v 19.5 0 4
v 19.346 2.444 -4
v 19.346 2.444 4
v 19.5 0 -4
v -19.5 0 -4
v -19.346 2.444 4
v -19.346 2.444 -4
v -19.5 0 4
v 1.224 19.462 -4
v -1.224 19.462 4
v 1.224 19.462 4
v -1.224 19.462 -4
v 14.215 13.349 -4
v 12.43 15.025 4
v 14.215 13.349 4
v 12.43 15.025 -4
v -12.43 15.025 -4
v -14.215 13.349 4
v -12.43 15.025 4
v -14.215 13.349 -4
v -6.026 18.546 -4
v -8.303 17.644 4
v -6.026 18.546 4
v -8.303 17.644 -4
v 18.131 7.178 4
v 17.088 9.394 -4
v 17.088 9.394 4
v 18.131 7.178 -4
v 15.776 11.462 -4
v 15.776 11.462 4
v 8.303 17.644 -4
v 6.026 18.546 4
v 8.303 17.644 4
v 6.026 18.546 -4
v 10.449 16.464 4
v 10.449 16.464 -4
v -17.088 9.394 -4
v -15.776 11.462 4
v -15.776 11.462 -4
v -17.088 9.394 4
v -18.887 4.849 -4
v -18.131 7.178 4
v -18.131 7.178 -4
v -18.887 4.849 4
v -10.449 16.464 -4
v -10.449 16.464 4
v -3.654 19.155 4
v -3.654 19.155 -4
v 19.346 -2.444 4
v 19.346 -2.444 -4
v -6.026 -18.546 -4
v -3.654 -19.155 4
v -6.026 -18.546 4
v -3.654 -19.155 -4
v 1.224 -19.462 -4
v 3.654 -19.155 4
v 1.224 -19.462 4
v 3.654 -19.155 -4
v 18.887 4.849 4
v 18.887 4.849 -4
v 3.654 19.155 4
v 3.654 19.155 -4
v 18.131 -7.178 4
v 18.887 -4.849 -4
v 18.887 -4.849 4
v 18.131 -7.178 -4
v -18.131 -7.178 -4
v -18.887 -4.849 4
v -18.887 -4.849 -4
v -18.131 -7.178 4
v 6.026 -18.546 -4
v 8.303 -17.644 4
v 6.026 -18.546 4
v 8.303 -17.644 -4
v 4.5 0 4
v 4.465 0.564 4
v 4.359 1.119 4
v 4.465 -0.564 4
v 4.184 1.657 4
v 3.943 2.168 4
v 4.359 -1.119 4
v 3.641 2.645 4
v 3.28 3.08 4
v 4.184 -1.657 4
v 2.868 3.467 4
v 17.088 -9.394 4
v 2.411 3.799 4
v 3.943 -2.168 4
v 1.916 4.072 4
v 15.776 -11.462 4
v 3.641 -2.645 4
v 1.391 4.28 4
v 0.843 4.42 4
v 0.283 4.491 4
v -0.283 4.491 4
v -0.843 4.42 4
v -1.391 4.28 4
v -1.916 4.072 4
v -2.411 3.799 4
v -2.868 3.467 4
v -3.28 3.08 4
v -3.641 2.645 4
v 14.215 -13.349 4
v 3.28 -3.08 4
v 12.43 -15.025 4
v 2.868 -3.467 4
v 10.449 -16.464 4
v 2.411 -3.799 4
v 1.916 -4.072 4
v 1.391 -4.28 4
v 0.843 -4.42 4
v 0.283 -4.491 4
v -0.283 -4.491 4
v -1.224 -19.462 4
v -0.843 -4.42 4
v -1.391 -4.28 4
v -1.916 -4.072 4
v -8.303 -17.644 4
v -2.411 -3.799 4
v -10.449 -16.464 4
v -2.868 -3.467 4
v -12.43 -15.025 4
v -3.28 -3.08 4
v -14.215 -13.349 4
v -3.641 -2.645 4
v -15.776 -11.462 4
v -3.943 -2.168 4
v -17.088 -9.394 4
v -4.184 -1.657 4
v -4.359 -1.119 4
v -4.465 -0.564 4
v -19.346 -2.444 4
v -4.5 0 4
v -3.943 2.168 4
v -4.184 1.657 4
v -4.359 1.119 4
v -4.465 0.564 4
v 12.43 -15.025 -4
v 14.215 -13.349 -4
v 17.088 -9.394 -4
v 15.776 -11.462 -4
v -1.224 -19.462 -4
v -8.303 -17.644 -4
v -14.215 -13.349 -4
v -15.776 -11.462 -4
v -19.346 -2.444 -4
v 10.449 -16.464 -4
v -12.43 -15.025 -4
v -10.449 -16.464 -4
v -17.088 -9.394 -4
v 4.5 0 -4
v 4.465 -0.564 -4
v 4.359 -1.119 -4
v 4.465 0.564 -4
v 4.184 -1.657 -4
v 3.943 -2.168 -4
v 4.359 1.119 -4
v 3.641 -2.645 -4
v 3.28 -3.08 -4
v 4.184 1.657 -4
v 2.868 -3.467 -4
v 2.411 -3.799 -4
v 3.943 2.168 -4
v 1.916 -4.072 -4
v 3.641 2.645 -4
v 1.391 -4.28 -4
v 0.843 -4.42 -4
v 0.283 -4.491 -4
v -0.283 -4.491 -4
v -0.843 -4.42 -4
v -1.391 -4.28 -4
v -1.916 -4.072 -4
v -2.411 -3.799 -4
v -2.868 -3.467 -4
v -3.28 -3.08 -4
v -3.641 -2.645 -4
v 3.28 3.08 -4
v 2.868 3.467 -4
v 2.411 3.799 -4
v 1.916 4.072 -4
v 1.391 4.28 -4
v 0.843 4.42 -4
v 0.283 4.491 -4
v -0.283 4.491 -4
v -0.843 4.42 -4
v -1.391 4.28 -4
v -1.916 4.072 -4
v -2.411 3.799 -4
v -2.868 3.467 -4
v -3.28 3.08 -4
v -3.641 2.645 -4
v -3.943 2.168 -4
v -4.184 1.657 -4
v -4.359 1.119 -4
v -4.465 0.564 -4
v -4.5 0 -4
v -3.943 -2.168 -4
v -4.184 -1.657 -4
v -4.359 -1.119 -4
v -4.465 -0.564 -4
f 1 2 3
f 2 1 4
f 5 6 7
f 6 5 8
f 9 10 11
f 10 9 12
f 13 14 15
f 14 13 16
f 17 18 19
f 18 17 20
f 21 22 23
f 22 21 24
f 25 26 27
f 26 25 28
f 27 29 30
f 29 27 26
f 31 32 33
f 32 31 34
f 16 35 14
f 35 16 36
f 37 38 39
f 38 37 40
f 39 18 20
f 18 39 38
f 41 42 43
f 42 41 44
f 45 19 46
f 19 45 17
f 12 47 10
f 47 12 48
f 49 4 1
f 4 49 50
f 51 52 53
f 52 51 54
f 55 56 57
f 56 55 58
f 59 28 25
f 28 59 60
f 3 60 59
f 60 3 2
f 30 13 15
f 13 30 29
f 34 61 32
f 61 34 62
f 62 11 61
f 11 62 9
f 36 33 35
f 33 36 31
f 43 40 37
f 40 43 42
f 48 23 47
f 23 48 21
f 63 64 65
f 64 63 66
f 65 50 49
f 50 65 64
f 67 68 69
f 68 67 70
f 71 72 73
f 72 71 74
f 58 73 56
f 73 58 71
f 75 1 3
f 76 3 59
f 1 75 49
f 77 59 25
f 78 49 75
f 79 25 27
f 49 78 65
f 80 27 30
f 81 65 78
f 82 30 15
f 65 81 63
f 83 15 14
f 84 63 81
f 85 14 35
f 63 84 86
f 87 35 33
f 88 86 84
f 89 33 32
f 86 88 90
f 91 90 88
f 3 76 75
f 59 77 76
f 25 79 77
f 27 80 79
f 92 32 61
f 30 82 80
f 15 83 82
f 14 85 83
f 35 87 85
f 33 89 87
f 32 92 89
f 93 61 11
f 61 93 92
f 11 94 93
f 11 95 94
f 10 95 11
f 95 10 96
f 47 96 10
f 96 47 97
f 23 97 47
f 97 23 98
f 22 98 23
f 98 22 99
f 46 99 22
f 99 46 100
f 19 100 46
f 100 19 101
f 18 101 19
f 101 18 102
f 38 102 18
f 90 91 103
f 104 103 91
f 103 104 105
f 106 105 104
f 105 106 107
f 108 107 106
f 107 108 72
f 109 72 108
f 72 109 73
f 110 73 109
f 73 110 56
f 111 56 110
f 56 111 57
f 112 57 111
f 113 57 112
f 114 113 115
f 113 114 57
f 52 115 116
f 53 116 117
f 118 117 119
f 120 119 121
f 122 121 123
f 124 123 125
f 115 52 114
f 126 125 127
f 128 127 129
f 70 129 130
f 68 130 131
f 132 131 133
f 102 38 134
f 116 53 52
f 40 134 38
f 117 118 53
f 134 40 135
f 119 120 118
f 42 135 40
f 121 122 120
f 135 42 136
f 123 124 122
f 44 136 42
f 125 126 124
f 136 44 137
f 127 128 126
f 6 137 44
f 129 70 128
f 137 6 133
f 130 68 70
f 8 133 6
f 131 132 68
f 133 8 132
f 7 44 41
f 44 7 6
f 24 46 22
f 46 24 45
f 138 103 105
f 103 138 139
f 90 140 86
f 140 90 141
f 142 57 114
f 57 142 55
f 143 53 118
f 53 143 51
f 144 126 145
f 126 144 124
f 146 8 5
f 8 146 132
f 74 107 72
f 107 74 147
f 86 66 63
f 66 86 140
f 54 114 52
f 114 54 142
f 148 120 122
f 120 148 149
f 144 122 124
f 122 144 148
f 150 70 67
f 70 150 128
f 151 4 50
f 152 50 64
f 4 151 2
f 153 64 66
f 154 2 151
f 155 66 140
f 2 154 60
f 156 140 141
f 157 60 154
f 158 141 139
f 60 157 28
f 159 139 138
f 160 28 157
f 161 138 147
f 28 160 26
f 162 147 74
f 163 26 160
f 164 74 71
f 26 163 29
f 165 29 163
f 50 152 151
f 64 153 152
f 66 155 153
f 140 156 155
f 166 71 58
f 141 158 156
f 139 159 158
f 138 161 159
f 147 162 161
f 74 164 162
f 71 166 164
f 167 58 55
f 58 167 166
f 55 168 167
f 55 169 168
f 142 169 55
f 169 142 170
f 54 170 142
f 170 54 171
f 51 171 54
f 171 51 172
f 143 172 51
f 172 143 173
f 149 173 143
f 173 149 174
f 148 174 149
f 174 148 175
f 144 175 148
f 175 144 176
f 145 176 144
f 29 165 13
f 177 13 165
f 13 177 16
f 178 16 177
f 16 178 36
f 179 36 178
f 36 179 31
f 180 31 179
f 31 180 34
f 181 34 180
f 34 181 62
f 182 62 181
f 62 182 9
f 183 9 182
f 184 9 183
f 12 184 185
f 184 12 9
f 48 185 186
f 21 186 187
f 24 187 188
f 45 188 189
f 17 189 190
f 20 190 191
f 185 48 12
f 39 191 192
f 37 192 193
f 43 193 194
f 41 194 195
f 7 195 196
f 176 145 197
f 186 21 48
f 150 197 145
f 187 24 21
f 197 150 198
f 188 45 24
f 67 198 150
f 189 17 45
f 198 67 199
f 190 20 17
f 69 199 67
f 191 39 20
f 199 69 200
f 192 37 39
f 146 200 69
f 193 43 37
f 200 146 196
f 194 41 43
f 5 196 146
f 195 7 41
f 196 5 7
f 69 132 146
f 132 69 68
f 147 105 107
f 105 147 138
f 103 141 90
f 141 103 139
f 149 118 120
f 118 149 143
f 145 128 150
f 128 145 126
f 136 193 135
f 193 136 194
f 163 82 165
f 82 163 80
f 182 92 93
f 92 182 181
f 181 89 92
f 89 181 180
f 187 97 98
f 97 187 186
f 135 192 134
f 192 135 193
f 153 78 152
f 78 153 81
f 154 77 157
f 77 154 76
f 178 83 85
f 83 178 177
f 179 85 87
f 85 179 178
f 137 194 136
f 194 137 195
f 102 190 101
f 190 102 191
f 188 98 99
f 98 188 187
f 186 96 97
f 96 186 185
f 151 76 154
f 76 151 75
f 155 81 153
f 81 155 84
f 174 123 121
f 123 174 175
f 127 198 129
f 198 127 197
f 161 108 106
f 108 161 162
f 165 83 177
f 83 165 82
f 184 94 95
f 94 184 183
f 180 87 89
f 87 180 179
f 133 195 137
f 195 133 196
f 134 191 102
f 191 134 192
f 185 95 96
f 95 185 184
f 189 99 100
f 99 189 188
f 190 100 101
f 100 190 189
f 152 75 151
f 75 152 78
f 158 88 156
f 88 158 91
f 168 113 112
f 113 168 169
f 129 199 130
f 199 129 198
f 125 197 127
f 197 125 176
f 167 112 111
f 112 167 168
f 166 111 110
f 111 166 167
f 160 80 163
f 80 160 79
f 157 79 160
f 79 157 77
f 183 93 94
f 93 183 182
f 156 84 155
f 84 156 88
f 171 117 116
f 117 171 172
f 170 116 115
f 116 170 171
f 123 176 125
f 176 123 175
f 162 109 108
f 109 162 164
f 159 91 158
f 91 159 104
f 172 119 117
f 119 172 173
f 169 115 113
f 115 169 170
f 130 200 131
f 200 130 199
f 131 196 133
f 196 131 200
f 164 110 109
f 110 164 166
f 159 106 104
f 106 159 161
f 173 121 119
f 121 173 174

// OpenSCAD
$fn = 50;


difference() {
	union() {
		translate(v = [0, 0, -4.0000000000]) {
			cylinder(h = 8, r = 19.5000000000);
		}
	}
	union() {
		translate(v = [0, 0, -100.0000000000]) {
			cylinder(h = 200, r = 4.5000000000);
		}
	}
}
